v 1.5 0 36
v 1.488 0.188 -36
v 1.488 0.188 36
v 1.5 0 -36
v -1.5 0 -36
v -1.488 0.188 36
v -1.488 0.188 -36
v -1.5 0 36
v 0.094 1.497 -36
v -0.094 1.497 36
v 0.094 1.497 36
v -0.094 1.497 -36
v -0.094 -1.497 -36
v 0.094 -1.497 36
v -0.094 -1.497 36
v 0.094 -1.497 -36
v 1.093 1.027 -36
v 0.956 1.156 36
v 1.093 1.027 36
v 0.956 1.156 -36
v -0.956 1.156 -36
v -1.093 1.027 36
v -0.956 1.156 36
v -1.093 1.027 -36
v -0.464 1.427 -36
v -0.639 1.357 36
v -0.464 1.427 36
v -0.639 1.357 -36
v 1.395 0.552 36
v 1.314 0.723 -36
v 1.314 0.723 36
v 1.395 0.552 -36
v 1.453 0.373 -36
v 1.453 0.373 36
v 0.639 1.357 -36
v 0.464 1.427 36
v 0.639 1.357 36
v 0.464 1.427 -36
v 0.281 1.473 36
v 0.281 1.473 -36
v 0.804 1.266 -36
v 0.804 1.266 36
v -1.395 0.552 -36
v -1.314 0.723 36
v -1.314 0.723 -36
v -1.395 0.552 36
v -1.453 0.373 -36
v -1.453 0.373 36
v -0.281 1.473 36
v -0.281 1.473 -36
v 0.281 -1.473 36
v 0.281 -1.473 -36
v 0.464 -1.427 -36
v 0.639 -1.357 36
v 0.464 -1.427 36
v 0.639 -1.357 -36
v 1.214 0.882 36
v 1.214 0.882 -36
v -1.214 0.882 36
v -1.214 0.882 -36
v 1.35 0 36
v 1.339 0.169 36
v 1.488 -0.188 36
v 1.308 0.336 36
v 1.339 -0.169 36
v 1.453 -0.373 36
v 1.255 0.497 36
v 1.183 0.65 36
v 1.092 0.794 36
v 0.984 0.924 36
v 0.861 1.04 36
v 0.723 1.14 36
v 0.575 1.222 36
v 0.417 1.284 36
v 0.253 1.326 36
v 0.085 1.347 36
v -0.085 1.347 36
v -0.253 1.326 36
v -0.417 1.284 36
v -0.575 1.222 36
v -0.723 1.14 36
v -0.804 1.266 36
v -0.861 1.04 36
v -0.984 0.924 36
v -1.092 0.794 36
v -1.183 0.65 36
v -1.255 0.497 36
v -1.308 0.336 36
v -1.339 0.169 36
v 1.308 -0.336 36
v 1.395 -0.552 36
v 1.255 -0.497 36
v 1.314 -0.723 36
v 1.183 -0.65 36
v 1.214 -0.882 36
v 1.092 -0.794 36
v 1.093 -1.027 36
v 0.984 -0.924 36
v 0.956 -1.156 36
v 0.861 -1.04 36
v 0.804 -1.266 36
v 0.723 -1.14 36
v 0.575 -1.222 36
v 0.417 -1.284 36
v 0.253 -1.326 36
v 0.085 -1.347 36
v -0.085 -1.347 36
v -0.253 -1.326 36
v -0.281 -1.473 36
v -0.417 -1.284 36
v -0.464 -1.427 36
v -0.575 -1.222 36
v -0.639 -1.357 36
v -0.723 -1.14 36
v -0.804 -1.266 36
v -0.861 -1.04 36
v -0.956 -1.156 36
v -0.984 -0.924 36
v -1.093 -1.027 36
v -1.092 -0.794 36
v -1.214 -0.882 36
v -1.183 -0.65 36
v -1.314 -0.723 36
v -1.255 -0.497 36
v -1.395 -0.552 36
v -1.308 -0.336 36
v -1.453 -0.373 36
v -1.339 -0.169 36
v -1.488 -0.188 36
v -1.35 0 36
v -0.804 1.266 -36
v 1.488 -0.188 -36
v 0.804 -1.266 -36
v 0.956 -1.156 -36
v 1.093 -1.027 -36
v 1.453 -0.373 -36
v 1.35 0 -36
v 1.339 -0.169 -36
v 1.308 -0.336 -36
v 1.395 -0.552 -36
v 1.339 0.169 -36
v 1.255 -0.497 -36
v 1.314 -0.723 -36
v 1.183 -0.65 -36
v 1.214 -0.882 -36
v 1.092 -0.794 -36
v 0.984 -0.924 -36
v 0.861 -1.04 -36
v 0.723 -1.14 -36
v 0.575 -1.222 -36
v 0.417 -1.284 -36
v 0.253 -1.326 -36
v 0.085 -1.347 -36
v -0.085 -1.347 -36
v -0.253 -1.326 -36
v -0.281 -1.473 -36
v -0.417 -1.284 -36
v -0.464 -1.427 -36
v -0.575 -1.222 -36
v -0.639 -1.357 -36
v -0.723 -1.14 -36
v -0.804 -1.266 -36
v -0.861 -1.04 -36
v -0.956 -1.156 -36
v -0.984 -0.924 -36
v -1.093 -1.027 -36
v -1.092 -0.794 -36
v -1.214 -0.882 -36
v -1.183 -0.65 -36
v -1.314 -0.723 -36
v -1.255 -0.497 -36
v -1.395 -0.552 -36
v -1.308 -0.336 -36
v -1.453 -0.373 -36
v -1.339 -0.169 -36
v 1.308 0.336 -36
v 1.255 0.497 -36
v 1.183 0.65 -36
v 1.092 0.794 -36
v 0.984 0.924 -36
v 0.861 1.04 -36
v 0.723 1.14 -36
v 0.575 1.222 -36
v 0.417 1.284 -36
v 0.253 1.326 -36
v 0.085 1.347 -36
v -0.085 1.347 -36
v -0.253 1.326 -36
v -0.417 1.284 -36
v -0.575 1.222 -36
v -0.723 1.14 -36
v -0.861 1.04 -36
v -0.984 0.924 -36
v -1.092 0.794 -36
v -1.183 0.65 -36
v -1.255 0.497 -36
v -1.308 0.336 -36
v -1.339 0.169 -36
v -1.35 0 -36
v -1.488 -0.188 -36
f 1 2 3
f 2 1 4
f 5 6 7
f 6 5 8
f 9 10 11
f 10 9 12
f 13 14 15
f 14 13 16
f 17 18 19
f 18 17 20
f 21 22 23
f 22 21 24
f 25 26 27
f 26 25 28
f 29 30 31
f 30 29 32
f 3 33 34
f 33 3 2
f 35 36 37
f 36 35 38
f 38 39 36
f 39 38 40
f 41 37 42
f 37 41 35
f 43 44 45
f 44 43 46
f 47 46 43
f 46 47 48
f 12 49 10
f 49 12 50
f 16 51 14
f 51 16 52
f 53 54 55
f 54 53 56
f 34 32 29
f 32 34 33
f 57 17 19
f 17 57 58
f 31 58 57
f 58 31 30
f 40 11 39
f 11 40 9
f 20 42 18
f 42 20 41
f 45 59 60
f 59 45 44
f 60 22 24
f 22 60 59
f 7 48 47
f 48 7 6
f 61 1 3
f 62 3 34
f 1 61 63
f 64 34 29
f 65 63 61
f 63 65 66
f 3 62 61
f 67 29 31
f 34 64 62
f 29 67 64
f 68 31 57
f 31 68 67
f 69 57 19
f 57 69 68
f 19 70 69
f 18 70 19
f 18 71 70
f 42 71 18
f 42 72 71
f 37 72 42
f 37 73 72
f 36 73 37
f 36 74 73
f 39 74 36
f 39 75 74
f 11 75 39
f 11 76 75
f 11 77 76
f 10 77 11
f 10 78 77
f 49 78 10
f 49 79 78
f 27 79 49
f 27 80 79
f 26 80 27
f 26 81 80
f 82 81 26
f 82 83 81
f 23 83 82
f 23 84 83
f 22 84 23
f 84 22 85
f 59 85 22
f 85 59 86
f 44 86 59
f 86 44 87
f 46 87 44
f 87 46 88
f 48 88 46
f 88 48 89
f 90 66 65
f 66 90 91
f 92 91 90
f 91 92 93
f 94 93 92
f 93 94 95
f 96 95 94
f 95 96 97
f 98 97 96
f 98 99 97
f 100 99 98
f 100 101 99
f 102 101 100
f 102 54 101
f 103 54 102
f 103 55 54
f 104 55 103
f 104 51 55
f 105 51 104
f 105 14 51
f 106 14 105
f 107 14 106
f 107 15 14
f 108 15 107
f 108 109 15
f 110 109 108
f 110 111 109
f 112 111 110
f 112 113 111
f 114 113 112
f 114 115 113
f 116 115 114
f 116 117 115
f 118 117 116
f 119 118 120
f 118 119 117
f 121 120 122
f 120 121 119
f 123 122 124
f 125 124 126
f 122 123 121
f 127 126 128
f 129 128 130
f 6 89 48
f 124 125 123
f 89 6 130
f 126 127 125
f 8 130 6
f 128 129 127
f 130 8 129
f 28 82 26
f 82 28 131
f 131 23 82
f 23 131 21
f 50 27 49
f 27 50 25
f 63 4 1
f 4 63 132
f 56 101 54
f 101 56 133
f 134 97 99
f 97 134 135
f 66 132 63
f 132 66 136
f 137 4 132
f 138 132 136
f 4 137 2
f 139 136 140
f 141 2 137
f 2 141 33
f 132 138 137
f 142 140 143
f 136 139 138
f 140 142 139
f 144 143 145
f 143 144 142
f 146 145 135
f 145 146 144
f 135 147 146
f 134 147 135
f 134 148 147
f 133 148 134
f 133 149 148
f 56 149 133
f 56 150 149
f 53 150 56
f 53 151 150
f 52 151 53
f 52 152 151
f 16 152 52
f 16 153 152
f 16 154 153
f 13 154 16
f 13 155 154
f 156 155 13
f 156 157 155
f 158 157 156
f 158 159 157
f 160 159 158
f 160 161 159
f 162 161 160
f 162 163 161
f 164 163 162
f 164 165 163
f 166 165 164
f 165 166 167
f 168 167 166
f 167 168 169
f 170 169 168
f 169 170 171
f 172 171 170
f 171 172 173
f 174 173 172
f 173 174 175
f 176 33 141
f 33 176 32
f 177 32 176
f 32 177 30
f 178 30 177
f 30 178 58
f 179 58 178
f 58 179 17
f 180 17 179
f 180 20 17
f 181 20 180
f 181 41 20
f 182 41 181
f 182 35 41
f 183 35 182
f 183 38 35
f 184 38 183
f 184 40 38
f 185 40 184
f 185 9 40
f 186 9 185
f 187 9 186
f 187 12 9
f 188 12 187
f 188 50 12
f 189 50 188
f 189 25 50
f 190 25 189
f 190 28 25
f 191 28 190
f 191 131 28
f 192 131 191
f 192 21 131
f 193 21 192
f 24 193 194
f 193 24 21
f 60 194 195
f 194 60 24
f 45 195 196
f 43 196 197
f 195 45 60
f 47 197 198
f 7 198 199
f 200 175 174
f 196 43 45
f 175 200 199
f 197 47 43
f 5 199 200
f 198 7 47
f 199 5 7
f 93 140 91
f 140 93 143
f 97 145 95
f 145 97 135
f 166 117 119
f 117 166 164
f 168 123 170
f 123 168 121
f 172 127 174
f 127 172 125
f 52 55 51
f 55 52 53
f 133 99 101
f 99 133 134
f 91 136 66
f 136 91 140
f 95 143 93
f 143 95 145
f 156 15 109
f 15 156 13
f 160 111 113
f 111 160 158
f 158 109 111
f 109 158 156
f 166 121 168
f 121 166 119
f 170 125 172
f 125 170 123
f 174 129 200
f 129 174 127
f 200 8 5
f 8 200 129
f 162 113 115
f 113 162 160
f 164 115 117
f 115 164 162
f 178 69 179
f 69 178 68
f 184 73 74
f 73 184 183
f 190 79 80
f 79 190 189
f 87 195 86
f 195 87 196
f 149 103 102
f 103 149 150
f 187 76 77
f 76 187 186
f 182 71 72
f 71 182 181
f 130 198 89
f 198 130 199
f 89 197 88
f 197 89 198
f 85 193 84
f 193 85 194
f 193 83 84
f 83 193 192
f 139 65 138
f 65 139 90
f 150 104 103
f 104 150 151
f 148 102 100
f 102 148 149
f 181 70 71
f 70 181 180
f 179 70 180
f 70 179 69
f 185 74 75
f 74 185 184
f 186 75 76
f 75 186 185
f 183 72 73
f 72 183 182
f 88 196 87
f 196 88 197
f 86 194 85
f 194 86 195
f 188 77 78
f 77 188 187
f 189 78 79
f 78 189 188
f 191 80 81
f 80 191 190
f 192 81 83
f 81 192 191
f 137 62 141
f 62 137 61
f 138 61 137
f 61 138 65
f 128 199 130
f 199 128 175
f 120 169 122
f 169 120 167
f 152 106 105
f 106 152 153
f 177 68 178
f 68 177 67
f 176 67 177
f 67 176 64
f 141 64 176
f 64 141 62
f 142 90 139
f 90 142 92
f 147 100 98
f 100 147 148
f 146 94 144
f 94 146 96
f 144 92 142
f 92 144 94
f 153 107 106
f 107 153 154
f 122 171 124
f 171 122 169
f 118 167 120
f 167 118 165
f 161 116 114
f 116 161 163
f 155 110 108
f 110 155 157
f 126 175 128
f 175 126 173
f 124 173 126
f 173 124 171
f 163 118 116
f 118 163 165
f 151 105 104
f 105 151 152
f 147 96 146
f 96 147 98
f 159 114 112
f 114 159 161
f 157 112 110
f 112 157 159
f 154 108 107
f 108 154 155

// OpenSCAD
$fn = 50;


difference() {
	union() {
		translate(v = [0, 0, -36.0000000000]) {
			cylinder(h = 72, r = 1.5000000000);
		}
	}
	union() {
		translate(v = [0, 0, -100.0000000000]) {
			cylinder(h = 200, r = 1.3500000000);
		}
	}
}
